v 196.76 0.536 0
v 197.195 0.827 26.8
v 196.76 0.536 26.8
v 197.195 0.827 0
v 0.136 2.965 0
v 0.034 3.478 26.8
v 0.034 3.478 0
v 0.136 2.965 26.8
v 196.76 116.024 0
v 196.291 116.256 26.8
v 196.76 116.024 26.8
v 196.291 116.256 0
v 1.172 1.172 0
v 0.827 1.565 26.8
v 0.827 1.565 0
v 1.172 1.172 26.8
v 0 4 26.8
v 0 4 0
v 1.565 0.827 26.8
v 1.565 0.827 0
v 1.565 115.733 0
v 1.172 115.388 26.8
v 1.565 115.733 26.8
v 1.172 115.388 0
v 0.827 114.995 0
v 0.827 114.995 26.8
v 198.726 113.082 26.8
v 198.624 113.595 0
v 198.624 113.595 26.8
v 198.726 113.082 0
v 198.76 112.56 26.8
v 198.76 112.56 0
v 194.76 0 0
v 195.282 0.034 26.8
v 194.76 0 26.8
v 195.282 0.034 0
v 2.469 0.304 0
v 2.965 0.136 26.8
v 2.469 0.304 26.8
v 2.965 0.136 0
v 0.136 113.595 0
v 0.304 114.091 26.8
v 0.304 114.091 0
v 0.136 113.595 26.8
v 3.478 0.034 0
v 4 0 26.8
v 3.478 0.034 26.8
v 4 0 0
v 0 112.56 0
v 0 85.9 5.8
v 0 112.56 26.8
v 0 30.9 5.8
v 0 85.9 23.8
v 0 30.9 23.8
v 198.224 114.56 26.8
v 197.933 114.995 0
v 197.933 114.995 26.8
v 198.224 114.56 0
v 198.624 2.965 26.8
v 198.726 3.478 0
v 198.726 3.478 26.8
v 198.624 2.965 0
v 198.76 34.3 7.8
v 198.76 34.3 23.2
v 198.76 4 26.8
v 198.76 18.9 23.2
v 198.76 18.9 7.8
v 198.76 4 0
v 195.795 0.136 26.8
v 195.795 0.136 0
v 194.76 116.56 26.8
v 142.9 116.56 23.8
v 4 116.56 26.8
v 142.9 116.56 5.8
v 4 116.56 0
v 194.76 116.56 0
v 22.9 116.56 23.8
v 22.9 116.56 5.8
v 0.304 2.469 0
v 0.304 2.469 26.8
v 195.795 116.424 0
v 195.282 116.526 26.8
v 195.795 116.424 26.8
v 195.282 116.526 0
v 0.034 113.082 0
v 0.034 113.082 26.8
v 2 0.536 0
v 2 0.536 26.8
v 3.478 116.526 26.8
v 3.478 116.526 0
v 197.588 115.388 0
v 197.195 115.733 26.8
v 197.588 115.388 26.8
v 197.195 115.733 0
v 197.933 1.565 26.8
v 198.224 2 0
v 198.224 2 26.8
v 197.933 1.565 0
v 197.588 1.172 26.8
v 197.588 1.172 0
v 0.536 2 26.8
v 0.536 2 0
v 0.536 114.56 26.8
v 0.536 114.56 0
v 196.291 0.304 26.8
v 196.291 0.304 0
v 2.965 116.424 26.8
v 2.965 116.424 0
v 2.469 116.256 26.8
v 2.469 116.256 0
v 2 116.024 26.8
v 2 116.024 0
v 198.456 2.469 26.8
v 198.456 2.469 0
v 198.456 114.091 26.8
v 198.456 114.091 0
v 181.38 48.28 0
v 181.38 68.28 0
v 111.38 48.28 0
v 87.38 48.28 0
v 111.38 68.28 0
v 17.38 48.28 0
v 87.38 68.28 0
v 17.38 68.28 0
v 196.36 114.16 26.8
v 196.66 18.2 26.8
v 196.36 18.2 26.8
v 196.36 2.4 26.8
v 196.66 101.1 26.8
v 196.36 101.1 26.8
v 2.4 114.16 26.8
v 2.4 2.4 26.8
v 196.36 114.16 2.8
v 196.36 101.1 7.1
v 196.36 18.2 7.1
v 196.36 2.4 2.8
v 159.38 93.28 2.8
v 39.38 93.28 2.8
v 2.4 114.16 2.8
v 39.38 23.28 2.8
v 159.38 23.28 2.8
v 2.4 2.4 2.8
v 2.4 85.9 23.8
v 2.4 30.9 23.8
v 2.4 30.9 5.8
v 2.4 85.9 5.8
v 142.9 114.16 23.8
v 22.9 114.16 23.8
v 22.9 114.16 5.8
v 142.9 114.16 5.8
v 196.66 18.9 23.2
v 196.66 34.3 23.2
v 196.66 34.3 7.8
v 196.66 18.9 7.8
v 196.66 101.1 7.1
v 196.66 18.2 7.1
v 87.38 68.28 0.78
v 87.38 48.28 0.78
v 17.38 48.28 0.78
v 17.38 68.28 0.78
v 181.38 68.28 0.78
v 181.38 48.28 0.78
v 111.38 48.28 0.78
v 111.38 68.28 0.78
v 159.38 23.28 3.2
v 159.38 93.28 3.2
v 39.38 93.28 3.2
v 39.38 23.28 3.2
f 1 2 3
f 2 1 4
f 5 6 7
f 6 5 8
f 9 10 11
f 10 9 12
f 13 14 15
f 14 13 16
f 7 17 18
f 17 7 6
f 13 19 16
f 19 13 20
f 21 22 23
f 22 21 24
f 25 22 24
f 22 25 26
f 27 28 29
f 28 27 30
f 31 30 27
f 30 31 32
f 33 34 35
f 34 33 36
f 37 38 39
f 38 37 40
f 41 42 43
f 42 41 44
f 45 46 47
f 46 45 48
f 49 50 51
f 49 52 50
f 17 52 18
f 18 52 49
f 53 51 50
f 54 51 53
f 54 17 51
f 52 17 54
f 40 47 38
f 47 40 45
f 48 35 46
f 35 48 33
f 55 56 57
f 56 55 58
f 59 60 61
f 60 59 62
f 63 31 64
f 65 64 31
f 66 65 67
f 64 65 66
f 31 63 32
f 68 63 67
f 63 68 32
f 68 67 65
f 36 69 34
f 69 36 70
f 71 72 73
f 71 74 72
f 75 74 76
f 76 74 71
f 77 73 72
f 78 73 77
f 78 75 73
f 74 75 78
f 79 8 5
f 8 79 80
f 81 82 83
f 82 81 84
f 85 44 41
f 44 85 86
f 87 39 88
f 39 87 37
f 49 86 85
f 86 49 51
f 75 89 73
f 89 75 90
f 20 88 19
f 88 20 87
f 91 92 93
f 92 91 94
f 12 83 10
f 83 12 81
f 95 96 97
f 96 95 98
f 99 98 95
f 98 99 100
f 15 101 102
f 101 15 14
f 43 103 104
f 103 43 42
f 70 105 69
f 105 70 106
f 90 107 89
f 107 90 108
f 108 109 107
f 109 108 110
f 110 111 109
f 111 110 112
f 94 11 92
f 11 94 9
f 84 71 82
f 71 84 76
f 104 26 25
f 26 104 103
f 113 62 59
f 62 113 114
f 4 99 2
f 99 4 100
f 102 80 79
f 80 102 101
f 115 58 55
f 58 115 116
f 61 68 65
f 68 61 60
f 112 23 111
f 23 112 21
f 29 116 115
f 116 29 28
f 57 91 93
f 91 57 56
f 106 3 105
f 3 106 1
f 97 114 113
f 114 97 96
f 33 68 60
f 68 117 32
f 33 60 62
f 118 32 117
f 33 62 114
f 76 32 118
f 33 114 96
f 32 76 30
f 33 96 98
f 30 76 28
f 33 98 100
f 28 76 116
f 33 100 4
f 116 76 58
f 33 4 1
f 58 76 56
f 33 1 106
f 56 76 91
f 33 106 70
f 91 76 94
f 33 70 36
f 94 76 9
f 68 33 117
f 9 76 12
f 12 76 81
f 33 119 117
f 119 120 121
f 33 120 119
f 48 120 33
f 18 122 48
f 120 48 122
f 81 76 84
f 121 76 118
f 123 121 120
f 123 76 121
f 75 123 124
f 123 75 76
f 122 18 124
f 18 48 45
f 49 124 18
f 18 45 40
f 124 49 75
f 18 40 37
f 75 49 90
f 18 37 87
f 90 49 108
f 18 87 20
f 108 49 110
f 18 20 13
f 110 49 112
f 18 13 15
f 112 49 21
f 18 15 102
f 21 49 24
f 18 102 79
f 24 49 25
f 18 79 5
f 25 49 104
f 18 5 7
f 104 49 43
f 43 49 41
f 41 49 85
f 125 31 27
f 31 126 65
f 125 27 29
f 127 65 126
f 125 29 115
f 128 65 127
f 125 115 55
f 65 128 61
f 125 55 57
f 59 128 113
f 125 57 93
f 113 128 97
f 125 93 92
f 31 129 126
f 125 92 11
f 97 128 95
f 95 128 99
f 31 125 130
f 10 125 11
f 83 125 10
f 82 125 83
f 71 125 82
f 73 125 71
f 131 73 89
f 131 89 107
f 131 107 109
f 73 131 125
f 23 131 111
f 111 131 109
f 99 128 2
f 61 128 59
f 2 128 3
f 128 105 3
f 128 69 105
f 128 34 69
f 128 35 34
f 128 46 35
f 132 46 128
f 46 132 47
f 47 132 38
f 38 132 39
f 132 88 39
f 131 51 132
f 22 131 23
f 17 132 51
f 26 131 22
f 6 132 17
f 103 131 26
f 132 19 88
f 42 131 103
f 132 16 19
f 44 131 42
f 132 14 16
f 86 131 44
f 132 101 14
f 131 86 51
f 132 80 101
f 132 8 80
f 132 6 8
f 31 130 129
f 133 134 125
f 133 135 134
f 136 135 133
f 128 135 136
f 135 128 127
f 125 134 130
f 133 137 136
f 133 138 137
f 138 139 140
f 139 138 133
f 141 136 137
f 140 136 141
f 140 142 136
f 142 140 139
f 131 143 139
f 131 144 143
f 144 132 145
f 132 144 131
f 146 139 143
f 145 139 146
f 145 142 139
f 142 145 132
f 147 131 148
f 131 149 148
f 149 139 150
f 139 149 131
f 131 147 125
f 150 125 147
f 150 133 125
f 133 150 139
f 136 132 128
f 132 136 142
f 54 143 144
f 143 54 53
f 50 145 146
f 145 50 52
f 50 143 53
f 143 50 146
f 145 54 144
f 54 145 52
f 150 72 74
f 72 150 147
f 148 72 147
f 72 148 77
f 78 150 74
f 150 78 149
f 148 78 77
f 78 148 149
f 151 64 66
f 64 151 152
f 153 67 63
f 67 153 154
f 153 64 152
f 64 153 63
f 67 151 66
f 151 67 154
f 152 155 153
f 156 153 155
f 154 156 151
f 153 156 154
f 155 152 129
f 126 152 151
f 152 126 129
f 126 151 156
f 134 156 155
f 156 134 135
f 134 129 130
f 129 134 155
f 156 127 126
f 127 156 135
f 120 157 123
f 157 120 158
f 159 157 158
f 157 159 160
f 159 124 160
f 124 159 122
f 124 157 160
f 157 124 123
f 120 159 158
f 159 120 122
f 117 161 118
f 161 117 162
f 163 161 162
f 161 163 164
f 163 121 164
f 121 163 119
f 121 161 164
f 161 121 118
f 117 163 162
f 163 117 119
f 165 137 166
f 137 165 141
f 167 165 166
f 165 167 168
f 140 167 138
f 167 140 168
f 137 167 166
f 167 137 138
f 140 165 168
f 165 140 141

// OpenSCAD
// Family Hub — Waveshare ESP32-S3-Touch-LCD-7B wall case
// OpenSCAD · Units: mm
//
// Mounting:
//   Panel → case : Waveshare peelable adhesive sticker on the module back
//                  (flat landing pad inside; NO M3 posts, NO raised seat lip)
//   Case  → wall : TWO Velcro Command strips (recesses on outer back)
//   Outer front rim frames the glass edge (alignment + light retention)
//
// Facing screen (+Z toward viewer, +X right, +Y up):
//   LEFT  — large bay for USB-C / microSD
//   TOP   — large bay for Boot / Reset / SD
//   RIGHT — MX switch bay (PCB up, switch at bottom)
//
// Build (from hardware/cad):
//   openscad -o family-hub-7b-case.stl family-hub-7b-case.scad
//   # optional: copy dated builds into exports/

$fn = 48;

/* ===== Official Waveshare touch 7B drawing ===== */
panel_w = 192.96;
panel_h = 110.76;
active_w = 154.88;
active_h = 86.72;
bezel_left = 19.04;
bezel_right = 19.04;
bezel_top = 11.00;
bezel_bottom = 13.04;

/* ===== Case ===== */
wall = 2.4;
front_rim = 2.0;        // outer lip around glass (frames the panel)
clearance = 0.5;        // around panel outer edge
cavity_z = 22.0;        // electronics depth behind stuck panel
back_thick = 2.8;       // Command-strip + sticker landing face
corner_r = 4.0;         // measured with radius gauge

inner_w = panel_w + 2 * clearance;
inner_h = panel_h + 2 * clearance;
outer_w = inner_w + 2 * wall;
outer_h = inner_h + 2 * wall;
outer_z = back_thick + cavity_z + front_rim;

/* ===== Adhesive sticker landing (panel → case) ===== */
// Flat pad on the inside of the back where the Waveshare peel sticker bonds.
// Sized to the metal/PCB back footprint; tweak if your sticker is smaller.
sticker_pad_w = 120;
sticker_pad_h = 70;
// Slightly proud so glue contacts pad first, not the whole back texture
sticker_pad_raise = 0.4;

/* ===== TWO Velcro Command strips (case → wall) ===== */
// Typical large Velcro Command strip footprint (pair: one wall, one case)
cmd_w = 70;
cmd_h = 20;
cmd_recess = 0.8;
// Two strips, left/right of center on the outer back
cmd_gap = 24;           // clear space between the two strips
cmd_y = (outer_h - cmd_h) / 2;

/* ===== LEFT: big USB / microSD access ===== */
left_access_y = wall + clearance + 28;
left_access_h = 55;
left_access_z = back_thick + 3;
left_access_d = cavity_z - 4;

/* ===== TOP: big Boot / Reset / SD access ===== */
top_access_x = wall + clearance + 20;
top_access_w = 120;
top_access_z = back_thick + 3;
top_access_d = cavity_z - 4;

/* ===== RIGHT: MX switch bay ===== */
sw_pcb_w = 20.8;
sw_pcb_len = 81.5;
sw_pcb_thick = 6.0;
sw_face = 15.4;
sw_clear = 0.7;
sw_from_bottom = 16;
sw_z = back_thick + 5;

module rounded_rect(size, r) {
  w = size[0]; h = size[1];
  hull() {
    translate([r, r]) circle(r = r);
    translate([w - r, r]) circle(r = r);
    translate([r, h - r]) circle(r = r);
    translate([w - r, h - r]) circle(r = r);
  }
}

module case_body() {
  difference() {
    linear_extrude(outer_z)
      rounded_rect([outer_w, outer_h], corner_r);

    // Electronics cavity (open to front rim plane)
    translate([wall, wall, back_thick])
      cube([inner_w, inner_h, cavity_z + front_rim + 0.2]);

    // Front window — active glass (outer rim holds around the bezel)
    translate([
      wall + clearance + bezel_left - 0.3,
      wall + clearance + bezel_bottom - 0.3,
      outer_z - front_rim - 0.05
    ])
      cube([active_w + 0.6, active_h + 0.6, front_rim + 0.2]);

    // Shallow pocket so the panel outer bezel nests in the rim
    // (not a raised seat lip — just the outer frame wrapping the edge)
    translate([wall, wall, outer_z - front_rim - 1.0])
      cube([inner_w, inner_h, 1.1]);

    // --- LEFT: big USB / microSD access ---
    translate([-0.2, left_access_y, left_access_z])
      cube([wall + 0.4, left_access_h, left_access_d]);

    // --- TOP: big Boot / Reset / SD access ---
    translate([top_access_x, outer_h - wall - 0.1, top_access_z])
      cube([top_access_w, wall + 0.4, top_access_d]);

    // --- RIGHT: MX face + PCB pocket ---
    translate([outer_w - wall - 0.1, wall + clearance + sw_from_bottom, sw_z])
      cube([wall + 0.4, sw_face, sw_face]);

    translate([
      outer_w - wall - sw_pcb_thick - sw_clear,
      wall + clearance + sw_from_bottom - sw_clear,
      sw_z - sw_clear
    ])
      cube([
        sw_pcb_thick + sw_clear + 0.3,
        sw_pcb_len + 2 * sw_clear,
        max(sw_face, sw_pcb_w) + 2 * sw_clear
      ]);

    // --- TWO Velcro Command strip recesses (outer back, Z=0) ---
    cmd_x0 = (outer_w - (2 * cmd_w + cmd_gap)) / 2;
    translate([cmd_x0, cmd_y, -0.02])
      cube([cmd_w, cmd_h, cmd_recess]);
    translate([cmd_x0 + cmd_w + cmd_gap, cmd_y, -0.02])
      cube([cmd_w, cmd_h, cmd_recess]);
  }

  // Adhesive landing pad — inside back, centered (panel sticker bonds here)
  translate([
    (outer_w - sticker_pad_w) / 2,
    (outer_h - sticker_pad_h) / 2,
    back_thick
  ])
    cube([sticker_pad_w, sticker_pad_h, sticker_pad_raise]);
}

case_body();
